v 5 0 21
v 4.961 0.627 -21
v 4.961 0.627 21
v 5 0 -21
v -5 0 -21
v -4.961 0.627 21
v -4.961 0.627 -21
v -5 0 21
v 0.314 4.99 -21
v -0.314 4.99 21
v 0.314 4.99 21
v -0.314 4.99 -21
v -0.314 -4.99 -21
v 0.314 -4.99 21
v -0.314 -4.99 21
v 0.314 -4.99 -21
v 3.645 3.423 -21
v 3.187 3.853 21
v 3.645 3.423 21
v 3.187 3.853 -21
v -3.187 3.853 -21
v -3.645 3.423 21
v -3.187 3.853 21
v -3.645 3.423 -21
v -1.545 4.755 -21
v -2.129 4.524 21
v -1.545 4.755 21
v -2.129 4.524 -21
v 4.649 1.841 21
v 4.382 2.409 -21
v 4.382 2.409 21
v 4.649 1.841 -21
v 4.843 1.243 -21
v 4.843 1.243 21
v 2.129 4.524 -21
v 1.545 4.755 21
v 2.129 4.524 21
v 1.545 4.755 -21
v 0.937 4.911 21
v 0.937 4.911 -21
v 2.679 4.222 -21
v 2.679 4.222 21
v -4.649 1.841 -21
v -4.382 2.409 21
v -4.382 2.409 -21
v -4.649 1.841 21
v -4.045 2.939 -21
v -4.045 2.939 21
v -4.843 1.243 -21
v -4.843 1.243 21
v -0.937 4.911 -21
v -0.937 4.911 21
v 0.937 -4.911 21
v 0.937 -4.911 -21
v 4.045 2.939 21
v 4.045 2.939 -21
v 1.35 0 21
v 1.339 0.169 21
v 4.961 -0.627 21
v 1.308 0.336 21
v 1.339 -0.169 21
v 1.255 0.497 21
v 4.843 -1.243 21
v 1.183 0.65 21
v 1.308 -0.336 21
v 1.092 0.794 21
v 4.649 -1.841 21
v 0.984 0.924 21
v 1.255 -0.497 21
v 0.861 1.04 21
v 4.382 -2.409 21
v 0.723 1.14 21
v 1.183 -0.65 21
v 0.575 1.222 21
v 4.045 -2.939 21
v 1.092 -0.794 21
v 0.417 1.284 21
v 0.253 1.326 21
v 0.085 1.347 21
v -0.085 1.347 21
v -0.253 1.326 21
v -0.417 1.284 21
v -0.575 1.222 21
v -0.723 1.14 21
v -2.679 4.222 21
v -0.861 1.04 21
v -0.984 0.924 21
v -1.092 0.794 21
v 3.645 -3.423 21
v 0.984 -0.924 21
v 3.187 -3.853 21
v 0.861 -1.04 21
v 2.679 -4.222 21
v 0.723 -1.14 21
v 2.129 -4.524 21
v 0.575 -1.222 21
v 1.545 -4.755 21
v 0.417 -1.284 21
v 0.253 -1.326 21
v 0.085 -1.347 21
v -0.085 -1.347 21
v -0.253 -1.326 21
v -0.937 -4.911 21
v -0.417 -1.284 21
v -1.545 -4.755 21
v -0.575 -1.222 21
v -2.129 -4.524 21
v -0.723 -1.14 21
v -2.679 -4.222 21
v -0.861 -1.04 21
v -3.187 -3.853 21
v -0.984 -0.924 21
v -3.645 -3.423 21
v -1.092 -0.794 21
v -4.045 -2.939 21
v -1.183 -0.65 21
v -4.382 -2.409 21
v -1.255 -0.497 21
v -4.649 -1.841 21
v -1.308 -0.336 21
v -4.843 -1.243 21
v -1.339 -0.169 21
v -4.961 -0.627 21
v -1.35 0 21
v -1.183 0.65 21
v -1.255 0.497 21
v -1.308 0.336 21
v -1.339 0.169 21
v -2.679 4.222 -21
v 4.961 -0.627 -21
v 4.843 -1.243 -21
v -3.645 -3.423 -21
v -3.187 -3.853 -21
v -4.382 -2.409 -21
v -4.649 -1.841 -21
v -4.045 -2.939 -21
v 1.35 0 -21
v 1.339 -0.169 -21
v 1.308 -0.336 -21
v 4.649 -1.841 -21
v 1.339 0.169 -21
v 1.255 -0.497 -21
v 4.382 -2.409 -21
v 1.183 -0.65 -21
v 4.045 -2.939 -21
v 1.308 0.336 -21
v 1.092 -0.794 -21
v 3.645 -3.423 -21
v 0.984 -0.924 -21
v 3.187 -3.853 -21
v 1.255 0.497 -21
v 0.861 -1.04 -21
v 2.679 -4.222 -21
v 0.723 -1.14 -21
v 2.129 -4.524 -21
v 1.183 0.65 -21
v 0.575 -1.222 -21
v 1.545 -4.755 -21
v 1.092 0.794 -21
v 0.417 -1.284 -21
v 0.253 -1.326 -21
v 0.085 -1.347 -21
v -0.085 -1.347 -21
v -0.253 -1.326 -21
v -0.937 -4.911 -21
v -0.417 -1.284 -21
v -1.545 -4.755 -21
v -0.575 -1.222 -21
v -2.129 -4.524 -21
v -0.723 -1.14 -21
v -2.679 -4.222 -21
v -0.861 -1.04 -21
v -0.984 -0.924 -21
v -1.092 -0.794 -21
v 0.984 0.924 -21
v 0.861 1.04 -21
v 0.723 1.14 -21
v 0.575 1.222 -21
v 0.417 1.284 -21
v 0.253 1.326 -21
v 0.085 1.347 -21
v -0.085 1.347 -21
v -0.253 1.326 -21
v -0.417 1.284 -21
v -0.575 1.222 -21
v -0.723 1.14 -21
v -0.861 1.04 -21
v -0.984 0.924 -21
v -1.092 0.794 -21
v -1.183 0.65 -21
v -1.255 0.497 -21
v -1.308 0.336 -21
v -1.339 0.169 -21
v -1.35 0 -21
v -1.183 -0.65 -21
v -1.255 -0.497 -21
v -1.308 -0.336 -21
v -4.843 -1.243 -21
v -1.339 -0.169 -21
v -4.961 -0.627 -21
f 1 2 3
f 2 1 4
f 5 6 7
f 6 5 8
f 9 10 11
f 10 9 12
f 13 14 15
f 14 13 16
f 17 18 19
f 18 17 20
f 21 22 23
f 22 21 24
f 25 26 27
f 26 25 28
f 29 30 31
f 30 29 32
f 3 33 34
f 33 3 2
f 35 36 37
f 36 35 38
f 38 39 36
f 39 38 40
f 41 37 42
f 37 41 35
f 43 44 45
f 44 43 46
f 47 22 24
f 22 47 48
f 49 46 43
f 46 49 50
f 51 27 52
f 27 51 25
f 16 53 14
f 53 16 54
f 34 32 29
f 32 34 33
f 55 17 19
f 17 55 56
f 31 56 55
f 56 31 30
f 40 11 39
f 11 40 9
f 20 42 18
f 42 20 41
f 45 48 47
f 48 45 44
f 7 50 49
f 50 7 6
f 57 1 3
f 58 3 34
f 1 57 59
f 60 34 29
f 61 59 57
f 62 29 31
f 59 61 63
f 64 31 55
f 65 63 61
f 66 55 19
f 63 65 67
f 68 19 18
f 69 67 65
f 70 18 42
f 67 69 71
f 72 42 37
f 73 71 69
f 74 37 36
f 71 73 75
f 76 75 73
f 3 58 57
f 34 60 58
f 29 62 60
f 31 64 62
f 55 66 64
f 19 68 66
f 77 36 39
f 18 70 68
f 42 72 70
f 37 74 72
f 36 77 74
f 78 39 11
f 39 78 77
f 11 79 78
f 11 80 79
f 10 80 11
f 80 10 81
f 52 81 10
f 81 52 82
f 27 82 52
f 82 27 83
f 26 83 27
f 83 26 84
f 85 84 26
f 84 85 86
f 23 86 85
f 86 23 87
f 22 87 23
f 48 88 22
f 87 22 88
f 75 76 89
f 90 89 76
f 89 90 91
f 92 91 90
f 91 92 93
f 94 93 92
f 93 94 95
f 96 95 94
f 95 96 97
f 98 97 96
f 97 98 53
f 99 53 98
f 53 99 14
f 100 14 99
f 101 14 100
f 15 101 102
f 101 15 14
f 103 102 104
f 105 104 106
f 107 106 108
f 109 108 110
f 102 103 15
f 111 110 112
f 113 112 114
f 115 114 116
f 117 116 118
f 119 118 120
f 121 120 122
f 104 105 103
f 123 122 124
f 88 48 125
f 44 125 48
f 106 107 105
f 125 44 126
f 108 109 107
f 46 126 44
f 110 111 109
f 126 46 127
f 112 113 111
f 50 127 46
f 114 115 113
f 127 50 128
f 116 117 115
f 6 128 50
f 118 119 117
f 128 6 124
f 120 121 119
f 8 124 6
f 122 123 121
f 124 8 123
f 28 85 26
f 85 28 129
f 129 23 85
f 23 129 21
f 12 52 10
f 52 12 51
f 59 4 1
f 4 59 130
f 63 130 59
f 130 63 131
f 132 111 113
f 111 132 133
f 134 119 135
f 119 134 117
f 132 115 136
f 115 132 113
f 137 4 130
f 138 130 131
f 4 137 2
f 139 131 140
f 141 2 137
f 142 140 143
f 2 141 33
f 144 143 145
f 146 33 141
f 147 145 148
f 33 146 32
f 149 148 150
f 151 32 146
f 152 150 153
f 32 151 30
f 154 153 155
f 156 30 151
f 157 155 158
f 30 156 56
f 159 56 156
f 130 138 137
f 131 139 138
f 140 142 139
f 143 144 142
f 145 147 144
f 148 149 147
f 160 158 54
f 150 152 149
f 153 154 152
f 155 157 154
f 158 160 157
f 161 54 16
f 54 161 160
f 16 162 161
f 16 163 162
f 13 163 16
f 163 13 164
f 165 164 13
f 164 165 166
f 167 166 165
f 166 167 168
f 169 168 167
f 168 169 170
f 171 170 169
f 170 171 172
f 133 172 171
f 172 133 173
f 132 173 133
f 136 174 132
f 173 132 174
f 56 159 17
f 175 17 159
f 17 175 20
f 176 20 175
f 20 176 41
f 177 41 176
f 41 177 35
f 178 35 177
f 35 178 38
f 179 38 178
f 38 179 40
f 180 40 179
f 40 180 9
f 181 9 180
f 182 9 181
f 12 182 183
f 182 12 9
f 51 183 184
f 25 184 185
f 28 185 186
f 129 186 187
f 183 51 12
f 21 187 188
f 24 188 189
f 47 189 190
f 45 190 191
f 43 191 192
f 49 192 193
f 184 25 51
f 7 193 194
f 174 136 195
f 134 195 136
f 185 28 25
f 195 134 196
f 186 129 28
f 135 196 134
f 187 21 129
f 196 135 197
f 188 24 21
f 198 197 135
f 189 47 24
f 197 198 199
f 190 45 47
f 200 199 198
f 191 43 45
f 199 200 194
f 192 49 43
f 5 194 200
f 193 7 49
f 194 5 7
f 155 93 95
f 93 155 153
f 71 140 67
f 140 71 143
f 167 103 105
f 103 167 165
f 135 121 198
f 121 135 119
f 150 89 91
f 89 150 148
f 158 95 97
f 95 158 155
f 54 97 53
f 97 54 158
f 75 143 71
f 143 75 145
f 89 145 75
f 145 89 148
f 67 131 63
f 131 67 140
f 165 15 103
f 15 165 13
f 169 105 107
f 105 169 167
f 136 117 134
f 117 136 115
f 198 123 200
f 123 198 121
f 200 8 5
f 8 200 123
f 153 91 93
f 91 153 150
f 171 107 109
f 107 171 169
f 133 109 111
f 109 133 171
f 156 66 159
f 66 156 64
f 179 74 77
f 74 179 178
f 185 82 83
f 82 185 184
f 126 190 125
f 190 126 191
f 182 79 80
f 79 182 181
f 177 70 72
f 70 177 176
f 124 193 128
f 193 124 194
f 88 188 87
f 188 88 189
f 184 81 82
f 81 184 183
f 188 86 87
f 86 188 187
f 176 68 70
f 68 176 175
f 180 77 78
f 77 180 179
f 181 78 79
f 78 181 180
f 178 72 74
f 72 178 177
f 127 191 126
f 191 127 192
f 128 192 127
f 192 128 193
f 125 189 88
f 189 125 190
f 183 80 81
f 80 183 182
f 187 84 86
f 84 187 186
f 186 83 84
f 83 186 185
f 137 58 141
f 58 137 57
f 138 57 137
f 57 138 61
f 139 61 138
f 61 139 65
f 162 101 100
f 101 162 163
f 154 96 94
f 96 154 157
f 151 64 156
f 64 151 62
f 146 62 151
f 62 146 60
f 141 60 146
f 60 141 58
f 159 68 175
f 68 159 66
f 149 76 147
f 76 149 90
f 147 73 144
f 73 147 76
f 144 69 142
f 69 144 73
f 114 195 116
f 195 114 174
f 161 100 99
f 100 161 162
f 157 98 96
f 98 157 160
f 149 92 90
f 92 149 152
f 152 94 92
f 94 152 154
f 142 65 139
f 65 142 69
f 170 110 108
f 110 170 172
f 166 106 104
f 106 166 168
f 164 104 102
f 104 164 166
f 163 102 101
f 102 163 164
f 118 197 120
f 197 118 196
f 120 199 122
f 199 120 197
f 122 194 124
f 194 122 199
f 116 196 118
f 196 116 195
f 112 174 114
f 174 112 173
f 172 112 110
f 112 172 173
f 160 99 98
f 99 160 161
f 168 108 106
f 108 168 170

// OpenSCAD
$fn = 50;


difference() {
	union() {
		translate(v = [0, 0, -21.0000000000]) {
			cylinder(h = 42, r = 5.0000000000);
		}
	}
	union() {
		translate(v = [0, 0, -100.0000000000]) {
			cylinder(h = 200, r = 1.3500000000);
		}
	}
}
